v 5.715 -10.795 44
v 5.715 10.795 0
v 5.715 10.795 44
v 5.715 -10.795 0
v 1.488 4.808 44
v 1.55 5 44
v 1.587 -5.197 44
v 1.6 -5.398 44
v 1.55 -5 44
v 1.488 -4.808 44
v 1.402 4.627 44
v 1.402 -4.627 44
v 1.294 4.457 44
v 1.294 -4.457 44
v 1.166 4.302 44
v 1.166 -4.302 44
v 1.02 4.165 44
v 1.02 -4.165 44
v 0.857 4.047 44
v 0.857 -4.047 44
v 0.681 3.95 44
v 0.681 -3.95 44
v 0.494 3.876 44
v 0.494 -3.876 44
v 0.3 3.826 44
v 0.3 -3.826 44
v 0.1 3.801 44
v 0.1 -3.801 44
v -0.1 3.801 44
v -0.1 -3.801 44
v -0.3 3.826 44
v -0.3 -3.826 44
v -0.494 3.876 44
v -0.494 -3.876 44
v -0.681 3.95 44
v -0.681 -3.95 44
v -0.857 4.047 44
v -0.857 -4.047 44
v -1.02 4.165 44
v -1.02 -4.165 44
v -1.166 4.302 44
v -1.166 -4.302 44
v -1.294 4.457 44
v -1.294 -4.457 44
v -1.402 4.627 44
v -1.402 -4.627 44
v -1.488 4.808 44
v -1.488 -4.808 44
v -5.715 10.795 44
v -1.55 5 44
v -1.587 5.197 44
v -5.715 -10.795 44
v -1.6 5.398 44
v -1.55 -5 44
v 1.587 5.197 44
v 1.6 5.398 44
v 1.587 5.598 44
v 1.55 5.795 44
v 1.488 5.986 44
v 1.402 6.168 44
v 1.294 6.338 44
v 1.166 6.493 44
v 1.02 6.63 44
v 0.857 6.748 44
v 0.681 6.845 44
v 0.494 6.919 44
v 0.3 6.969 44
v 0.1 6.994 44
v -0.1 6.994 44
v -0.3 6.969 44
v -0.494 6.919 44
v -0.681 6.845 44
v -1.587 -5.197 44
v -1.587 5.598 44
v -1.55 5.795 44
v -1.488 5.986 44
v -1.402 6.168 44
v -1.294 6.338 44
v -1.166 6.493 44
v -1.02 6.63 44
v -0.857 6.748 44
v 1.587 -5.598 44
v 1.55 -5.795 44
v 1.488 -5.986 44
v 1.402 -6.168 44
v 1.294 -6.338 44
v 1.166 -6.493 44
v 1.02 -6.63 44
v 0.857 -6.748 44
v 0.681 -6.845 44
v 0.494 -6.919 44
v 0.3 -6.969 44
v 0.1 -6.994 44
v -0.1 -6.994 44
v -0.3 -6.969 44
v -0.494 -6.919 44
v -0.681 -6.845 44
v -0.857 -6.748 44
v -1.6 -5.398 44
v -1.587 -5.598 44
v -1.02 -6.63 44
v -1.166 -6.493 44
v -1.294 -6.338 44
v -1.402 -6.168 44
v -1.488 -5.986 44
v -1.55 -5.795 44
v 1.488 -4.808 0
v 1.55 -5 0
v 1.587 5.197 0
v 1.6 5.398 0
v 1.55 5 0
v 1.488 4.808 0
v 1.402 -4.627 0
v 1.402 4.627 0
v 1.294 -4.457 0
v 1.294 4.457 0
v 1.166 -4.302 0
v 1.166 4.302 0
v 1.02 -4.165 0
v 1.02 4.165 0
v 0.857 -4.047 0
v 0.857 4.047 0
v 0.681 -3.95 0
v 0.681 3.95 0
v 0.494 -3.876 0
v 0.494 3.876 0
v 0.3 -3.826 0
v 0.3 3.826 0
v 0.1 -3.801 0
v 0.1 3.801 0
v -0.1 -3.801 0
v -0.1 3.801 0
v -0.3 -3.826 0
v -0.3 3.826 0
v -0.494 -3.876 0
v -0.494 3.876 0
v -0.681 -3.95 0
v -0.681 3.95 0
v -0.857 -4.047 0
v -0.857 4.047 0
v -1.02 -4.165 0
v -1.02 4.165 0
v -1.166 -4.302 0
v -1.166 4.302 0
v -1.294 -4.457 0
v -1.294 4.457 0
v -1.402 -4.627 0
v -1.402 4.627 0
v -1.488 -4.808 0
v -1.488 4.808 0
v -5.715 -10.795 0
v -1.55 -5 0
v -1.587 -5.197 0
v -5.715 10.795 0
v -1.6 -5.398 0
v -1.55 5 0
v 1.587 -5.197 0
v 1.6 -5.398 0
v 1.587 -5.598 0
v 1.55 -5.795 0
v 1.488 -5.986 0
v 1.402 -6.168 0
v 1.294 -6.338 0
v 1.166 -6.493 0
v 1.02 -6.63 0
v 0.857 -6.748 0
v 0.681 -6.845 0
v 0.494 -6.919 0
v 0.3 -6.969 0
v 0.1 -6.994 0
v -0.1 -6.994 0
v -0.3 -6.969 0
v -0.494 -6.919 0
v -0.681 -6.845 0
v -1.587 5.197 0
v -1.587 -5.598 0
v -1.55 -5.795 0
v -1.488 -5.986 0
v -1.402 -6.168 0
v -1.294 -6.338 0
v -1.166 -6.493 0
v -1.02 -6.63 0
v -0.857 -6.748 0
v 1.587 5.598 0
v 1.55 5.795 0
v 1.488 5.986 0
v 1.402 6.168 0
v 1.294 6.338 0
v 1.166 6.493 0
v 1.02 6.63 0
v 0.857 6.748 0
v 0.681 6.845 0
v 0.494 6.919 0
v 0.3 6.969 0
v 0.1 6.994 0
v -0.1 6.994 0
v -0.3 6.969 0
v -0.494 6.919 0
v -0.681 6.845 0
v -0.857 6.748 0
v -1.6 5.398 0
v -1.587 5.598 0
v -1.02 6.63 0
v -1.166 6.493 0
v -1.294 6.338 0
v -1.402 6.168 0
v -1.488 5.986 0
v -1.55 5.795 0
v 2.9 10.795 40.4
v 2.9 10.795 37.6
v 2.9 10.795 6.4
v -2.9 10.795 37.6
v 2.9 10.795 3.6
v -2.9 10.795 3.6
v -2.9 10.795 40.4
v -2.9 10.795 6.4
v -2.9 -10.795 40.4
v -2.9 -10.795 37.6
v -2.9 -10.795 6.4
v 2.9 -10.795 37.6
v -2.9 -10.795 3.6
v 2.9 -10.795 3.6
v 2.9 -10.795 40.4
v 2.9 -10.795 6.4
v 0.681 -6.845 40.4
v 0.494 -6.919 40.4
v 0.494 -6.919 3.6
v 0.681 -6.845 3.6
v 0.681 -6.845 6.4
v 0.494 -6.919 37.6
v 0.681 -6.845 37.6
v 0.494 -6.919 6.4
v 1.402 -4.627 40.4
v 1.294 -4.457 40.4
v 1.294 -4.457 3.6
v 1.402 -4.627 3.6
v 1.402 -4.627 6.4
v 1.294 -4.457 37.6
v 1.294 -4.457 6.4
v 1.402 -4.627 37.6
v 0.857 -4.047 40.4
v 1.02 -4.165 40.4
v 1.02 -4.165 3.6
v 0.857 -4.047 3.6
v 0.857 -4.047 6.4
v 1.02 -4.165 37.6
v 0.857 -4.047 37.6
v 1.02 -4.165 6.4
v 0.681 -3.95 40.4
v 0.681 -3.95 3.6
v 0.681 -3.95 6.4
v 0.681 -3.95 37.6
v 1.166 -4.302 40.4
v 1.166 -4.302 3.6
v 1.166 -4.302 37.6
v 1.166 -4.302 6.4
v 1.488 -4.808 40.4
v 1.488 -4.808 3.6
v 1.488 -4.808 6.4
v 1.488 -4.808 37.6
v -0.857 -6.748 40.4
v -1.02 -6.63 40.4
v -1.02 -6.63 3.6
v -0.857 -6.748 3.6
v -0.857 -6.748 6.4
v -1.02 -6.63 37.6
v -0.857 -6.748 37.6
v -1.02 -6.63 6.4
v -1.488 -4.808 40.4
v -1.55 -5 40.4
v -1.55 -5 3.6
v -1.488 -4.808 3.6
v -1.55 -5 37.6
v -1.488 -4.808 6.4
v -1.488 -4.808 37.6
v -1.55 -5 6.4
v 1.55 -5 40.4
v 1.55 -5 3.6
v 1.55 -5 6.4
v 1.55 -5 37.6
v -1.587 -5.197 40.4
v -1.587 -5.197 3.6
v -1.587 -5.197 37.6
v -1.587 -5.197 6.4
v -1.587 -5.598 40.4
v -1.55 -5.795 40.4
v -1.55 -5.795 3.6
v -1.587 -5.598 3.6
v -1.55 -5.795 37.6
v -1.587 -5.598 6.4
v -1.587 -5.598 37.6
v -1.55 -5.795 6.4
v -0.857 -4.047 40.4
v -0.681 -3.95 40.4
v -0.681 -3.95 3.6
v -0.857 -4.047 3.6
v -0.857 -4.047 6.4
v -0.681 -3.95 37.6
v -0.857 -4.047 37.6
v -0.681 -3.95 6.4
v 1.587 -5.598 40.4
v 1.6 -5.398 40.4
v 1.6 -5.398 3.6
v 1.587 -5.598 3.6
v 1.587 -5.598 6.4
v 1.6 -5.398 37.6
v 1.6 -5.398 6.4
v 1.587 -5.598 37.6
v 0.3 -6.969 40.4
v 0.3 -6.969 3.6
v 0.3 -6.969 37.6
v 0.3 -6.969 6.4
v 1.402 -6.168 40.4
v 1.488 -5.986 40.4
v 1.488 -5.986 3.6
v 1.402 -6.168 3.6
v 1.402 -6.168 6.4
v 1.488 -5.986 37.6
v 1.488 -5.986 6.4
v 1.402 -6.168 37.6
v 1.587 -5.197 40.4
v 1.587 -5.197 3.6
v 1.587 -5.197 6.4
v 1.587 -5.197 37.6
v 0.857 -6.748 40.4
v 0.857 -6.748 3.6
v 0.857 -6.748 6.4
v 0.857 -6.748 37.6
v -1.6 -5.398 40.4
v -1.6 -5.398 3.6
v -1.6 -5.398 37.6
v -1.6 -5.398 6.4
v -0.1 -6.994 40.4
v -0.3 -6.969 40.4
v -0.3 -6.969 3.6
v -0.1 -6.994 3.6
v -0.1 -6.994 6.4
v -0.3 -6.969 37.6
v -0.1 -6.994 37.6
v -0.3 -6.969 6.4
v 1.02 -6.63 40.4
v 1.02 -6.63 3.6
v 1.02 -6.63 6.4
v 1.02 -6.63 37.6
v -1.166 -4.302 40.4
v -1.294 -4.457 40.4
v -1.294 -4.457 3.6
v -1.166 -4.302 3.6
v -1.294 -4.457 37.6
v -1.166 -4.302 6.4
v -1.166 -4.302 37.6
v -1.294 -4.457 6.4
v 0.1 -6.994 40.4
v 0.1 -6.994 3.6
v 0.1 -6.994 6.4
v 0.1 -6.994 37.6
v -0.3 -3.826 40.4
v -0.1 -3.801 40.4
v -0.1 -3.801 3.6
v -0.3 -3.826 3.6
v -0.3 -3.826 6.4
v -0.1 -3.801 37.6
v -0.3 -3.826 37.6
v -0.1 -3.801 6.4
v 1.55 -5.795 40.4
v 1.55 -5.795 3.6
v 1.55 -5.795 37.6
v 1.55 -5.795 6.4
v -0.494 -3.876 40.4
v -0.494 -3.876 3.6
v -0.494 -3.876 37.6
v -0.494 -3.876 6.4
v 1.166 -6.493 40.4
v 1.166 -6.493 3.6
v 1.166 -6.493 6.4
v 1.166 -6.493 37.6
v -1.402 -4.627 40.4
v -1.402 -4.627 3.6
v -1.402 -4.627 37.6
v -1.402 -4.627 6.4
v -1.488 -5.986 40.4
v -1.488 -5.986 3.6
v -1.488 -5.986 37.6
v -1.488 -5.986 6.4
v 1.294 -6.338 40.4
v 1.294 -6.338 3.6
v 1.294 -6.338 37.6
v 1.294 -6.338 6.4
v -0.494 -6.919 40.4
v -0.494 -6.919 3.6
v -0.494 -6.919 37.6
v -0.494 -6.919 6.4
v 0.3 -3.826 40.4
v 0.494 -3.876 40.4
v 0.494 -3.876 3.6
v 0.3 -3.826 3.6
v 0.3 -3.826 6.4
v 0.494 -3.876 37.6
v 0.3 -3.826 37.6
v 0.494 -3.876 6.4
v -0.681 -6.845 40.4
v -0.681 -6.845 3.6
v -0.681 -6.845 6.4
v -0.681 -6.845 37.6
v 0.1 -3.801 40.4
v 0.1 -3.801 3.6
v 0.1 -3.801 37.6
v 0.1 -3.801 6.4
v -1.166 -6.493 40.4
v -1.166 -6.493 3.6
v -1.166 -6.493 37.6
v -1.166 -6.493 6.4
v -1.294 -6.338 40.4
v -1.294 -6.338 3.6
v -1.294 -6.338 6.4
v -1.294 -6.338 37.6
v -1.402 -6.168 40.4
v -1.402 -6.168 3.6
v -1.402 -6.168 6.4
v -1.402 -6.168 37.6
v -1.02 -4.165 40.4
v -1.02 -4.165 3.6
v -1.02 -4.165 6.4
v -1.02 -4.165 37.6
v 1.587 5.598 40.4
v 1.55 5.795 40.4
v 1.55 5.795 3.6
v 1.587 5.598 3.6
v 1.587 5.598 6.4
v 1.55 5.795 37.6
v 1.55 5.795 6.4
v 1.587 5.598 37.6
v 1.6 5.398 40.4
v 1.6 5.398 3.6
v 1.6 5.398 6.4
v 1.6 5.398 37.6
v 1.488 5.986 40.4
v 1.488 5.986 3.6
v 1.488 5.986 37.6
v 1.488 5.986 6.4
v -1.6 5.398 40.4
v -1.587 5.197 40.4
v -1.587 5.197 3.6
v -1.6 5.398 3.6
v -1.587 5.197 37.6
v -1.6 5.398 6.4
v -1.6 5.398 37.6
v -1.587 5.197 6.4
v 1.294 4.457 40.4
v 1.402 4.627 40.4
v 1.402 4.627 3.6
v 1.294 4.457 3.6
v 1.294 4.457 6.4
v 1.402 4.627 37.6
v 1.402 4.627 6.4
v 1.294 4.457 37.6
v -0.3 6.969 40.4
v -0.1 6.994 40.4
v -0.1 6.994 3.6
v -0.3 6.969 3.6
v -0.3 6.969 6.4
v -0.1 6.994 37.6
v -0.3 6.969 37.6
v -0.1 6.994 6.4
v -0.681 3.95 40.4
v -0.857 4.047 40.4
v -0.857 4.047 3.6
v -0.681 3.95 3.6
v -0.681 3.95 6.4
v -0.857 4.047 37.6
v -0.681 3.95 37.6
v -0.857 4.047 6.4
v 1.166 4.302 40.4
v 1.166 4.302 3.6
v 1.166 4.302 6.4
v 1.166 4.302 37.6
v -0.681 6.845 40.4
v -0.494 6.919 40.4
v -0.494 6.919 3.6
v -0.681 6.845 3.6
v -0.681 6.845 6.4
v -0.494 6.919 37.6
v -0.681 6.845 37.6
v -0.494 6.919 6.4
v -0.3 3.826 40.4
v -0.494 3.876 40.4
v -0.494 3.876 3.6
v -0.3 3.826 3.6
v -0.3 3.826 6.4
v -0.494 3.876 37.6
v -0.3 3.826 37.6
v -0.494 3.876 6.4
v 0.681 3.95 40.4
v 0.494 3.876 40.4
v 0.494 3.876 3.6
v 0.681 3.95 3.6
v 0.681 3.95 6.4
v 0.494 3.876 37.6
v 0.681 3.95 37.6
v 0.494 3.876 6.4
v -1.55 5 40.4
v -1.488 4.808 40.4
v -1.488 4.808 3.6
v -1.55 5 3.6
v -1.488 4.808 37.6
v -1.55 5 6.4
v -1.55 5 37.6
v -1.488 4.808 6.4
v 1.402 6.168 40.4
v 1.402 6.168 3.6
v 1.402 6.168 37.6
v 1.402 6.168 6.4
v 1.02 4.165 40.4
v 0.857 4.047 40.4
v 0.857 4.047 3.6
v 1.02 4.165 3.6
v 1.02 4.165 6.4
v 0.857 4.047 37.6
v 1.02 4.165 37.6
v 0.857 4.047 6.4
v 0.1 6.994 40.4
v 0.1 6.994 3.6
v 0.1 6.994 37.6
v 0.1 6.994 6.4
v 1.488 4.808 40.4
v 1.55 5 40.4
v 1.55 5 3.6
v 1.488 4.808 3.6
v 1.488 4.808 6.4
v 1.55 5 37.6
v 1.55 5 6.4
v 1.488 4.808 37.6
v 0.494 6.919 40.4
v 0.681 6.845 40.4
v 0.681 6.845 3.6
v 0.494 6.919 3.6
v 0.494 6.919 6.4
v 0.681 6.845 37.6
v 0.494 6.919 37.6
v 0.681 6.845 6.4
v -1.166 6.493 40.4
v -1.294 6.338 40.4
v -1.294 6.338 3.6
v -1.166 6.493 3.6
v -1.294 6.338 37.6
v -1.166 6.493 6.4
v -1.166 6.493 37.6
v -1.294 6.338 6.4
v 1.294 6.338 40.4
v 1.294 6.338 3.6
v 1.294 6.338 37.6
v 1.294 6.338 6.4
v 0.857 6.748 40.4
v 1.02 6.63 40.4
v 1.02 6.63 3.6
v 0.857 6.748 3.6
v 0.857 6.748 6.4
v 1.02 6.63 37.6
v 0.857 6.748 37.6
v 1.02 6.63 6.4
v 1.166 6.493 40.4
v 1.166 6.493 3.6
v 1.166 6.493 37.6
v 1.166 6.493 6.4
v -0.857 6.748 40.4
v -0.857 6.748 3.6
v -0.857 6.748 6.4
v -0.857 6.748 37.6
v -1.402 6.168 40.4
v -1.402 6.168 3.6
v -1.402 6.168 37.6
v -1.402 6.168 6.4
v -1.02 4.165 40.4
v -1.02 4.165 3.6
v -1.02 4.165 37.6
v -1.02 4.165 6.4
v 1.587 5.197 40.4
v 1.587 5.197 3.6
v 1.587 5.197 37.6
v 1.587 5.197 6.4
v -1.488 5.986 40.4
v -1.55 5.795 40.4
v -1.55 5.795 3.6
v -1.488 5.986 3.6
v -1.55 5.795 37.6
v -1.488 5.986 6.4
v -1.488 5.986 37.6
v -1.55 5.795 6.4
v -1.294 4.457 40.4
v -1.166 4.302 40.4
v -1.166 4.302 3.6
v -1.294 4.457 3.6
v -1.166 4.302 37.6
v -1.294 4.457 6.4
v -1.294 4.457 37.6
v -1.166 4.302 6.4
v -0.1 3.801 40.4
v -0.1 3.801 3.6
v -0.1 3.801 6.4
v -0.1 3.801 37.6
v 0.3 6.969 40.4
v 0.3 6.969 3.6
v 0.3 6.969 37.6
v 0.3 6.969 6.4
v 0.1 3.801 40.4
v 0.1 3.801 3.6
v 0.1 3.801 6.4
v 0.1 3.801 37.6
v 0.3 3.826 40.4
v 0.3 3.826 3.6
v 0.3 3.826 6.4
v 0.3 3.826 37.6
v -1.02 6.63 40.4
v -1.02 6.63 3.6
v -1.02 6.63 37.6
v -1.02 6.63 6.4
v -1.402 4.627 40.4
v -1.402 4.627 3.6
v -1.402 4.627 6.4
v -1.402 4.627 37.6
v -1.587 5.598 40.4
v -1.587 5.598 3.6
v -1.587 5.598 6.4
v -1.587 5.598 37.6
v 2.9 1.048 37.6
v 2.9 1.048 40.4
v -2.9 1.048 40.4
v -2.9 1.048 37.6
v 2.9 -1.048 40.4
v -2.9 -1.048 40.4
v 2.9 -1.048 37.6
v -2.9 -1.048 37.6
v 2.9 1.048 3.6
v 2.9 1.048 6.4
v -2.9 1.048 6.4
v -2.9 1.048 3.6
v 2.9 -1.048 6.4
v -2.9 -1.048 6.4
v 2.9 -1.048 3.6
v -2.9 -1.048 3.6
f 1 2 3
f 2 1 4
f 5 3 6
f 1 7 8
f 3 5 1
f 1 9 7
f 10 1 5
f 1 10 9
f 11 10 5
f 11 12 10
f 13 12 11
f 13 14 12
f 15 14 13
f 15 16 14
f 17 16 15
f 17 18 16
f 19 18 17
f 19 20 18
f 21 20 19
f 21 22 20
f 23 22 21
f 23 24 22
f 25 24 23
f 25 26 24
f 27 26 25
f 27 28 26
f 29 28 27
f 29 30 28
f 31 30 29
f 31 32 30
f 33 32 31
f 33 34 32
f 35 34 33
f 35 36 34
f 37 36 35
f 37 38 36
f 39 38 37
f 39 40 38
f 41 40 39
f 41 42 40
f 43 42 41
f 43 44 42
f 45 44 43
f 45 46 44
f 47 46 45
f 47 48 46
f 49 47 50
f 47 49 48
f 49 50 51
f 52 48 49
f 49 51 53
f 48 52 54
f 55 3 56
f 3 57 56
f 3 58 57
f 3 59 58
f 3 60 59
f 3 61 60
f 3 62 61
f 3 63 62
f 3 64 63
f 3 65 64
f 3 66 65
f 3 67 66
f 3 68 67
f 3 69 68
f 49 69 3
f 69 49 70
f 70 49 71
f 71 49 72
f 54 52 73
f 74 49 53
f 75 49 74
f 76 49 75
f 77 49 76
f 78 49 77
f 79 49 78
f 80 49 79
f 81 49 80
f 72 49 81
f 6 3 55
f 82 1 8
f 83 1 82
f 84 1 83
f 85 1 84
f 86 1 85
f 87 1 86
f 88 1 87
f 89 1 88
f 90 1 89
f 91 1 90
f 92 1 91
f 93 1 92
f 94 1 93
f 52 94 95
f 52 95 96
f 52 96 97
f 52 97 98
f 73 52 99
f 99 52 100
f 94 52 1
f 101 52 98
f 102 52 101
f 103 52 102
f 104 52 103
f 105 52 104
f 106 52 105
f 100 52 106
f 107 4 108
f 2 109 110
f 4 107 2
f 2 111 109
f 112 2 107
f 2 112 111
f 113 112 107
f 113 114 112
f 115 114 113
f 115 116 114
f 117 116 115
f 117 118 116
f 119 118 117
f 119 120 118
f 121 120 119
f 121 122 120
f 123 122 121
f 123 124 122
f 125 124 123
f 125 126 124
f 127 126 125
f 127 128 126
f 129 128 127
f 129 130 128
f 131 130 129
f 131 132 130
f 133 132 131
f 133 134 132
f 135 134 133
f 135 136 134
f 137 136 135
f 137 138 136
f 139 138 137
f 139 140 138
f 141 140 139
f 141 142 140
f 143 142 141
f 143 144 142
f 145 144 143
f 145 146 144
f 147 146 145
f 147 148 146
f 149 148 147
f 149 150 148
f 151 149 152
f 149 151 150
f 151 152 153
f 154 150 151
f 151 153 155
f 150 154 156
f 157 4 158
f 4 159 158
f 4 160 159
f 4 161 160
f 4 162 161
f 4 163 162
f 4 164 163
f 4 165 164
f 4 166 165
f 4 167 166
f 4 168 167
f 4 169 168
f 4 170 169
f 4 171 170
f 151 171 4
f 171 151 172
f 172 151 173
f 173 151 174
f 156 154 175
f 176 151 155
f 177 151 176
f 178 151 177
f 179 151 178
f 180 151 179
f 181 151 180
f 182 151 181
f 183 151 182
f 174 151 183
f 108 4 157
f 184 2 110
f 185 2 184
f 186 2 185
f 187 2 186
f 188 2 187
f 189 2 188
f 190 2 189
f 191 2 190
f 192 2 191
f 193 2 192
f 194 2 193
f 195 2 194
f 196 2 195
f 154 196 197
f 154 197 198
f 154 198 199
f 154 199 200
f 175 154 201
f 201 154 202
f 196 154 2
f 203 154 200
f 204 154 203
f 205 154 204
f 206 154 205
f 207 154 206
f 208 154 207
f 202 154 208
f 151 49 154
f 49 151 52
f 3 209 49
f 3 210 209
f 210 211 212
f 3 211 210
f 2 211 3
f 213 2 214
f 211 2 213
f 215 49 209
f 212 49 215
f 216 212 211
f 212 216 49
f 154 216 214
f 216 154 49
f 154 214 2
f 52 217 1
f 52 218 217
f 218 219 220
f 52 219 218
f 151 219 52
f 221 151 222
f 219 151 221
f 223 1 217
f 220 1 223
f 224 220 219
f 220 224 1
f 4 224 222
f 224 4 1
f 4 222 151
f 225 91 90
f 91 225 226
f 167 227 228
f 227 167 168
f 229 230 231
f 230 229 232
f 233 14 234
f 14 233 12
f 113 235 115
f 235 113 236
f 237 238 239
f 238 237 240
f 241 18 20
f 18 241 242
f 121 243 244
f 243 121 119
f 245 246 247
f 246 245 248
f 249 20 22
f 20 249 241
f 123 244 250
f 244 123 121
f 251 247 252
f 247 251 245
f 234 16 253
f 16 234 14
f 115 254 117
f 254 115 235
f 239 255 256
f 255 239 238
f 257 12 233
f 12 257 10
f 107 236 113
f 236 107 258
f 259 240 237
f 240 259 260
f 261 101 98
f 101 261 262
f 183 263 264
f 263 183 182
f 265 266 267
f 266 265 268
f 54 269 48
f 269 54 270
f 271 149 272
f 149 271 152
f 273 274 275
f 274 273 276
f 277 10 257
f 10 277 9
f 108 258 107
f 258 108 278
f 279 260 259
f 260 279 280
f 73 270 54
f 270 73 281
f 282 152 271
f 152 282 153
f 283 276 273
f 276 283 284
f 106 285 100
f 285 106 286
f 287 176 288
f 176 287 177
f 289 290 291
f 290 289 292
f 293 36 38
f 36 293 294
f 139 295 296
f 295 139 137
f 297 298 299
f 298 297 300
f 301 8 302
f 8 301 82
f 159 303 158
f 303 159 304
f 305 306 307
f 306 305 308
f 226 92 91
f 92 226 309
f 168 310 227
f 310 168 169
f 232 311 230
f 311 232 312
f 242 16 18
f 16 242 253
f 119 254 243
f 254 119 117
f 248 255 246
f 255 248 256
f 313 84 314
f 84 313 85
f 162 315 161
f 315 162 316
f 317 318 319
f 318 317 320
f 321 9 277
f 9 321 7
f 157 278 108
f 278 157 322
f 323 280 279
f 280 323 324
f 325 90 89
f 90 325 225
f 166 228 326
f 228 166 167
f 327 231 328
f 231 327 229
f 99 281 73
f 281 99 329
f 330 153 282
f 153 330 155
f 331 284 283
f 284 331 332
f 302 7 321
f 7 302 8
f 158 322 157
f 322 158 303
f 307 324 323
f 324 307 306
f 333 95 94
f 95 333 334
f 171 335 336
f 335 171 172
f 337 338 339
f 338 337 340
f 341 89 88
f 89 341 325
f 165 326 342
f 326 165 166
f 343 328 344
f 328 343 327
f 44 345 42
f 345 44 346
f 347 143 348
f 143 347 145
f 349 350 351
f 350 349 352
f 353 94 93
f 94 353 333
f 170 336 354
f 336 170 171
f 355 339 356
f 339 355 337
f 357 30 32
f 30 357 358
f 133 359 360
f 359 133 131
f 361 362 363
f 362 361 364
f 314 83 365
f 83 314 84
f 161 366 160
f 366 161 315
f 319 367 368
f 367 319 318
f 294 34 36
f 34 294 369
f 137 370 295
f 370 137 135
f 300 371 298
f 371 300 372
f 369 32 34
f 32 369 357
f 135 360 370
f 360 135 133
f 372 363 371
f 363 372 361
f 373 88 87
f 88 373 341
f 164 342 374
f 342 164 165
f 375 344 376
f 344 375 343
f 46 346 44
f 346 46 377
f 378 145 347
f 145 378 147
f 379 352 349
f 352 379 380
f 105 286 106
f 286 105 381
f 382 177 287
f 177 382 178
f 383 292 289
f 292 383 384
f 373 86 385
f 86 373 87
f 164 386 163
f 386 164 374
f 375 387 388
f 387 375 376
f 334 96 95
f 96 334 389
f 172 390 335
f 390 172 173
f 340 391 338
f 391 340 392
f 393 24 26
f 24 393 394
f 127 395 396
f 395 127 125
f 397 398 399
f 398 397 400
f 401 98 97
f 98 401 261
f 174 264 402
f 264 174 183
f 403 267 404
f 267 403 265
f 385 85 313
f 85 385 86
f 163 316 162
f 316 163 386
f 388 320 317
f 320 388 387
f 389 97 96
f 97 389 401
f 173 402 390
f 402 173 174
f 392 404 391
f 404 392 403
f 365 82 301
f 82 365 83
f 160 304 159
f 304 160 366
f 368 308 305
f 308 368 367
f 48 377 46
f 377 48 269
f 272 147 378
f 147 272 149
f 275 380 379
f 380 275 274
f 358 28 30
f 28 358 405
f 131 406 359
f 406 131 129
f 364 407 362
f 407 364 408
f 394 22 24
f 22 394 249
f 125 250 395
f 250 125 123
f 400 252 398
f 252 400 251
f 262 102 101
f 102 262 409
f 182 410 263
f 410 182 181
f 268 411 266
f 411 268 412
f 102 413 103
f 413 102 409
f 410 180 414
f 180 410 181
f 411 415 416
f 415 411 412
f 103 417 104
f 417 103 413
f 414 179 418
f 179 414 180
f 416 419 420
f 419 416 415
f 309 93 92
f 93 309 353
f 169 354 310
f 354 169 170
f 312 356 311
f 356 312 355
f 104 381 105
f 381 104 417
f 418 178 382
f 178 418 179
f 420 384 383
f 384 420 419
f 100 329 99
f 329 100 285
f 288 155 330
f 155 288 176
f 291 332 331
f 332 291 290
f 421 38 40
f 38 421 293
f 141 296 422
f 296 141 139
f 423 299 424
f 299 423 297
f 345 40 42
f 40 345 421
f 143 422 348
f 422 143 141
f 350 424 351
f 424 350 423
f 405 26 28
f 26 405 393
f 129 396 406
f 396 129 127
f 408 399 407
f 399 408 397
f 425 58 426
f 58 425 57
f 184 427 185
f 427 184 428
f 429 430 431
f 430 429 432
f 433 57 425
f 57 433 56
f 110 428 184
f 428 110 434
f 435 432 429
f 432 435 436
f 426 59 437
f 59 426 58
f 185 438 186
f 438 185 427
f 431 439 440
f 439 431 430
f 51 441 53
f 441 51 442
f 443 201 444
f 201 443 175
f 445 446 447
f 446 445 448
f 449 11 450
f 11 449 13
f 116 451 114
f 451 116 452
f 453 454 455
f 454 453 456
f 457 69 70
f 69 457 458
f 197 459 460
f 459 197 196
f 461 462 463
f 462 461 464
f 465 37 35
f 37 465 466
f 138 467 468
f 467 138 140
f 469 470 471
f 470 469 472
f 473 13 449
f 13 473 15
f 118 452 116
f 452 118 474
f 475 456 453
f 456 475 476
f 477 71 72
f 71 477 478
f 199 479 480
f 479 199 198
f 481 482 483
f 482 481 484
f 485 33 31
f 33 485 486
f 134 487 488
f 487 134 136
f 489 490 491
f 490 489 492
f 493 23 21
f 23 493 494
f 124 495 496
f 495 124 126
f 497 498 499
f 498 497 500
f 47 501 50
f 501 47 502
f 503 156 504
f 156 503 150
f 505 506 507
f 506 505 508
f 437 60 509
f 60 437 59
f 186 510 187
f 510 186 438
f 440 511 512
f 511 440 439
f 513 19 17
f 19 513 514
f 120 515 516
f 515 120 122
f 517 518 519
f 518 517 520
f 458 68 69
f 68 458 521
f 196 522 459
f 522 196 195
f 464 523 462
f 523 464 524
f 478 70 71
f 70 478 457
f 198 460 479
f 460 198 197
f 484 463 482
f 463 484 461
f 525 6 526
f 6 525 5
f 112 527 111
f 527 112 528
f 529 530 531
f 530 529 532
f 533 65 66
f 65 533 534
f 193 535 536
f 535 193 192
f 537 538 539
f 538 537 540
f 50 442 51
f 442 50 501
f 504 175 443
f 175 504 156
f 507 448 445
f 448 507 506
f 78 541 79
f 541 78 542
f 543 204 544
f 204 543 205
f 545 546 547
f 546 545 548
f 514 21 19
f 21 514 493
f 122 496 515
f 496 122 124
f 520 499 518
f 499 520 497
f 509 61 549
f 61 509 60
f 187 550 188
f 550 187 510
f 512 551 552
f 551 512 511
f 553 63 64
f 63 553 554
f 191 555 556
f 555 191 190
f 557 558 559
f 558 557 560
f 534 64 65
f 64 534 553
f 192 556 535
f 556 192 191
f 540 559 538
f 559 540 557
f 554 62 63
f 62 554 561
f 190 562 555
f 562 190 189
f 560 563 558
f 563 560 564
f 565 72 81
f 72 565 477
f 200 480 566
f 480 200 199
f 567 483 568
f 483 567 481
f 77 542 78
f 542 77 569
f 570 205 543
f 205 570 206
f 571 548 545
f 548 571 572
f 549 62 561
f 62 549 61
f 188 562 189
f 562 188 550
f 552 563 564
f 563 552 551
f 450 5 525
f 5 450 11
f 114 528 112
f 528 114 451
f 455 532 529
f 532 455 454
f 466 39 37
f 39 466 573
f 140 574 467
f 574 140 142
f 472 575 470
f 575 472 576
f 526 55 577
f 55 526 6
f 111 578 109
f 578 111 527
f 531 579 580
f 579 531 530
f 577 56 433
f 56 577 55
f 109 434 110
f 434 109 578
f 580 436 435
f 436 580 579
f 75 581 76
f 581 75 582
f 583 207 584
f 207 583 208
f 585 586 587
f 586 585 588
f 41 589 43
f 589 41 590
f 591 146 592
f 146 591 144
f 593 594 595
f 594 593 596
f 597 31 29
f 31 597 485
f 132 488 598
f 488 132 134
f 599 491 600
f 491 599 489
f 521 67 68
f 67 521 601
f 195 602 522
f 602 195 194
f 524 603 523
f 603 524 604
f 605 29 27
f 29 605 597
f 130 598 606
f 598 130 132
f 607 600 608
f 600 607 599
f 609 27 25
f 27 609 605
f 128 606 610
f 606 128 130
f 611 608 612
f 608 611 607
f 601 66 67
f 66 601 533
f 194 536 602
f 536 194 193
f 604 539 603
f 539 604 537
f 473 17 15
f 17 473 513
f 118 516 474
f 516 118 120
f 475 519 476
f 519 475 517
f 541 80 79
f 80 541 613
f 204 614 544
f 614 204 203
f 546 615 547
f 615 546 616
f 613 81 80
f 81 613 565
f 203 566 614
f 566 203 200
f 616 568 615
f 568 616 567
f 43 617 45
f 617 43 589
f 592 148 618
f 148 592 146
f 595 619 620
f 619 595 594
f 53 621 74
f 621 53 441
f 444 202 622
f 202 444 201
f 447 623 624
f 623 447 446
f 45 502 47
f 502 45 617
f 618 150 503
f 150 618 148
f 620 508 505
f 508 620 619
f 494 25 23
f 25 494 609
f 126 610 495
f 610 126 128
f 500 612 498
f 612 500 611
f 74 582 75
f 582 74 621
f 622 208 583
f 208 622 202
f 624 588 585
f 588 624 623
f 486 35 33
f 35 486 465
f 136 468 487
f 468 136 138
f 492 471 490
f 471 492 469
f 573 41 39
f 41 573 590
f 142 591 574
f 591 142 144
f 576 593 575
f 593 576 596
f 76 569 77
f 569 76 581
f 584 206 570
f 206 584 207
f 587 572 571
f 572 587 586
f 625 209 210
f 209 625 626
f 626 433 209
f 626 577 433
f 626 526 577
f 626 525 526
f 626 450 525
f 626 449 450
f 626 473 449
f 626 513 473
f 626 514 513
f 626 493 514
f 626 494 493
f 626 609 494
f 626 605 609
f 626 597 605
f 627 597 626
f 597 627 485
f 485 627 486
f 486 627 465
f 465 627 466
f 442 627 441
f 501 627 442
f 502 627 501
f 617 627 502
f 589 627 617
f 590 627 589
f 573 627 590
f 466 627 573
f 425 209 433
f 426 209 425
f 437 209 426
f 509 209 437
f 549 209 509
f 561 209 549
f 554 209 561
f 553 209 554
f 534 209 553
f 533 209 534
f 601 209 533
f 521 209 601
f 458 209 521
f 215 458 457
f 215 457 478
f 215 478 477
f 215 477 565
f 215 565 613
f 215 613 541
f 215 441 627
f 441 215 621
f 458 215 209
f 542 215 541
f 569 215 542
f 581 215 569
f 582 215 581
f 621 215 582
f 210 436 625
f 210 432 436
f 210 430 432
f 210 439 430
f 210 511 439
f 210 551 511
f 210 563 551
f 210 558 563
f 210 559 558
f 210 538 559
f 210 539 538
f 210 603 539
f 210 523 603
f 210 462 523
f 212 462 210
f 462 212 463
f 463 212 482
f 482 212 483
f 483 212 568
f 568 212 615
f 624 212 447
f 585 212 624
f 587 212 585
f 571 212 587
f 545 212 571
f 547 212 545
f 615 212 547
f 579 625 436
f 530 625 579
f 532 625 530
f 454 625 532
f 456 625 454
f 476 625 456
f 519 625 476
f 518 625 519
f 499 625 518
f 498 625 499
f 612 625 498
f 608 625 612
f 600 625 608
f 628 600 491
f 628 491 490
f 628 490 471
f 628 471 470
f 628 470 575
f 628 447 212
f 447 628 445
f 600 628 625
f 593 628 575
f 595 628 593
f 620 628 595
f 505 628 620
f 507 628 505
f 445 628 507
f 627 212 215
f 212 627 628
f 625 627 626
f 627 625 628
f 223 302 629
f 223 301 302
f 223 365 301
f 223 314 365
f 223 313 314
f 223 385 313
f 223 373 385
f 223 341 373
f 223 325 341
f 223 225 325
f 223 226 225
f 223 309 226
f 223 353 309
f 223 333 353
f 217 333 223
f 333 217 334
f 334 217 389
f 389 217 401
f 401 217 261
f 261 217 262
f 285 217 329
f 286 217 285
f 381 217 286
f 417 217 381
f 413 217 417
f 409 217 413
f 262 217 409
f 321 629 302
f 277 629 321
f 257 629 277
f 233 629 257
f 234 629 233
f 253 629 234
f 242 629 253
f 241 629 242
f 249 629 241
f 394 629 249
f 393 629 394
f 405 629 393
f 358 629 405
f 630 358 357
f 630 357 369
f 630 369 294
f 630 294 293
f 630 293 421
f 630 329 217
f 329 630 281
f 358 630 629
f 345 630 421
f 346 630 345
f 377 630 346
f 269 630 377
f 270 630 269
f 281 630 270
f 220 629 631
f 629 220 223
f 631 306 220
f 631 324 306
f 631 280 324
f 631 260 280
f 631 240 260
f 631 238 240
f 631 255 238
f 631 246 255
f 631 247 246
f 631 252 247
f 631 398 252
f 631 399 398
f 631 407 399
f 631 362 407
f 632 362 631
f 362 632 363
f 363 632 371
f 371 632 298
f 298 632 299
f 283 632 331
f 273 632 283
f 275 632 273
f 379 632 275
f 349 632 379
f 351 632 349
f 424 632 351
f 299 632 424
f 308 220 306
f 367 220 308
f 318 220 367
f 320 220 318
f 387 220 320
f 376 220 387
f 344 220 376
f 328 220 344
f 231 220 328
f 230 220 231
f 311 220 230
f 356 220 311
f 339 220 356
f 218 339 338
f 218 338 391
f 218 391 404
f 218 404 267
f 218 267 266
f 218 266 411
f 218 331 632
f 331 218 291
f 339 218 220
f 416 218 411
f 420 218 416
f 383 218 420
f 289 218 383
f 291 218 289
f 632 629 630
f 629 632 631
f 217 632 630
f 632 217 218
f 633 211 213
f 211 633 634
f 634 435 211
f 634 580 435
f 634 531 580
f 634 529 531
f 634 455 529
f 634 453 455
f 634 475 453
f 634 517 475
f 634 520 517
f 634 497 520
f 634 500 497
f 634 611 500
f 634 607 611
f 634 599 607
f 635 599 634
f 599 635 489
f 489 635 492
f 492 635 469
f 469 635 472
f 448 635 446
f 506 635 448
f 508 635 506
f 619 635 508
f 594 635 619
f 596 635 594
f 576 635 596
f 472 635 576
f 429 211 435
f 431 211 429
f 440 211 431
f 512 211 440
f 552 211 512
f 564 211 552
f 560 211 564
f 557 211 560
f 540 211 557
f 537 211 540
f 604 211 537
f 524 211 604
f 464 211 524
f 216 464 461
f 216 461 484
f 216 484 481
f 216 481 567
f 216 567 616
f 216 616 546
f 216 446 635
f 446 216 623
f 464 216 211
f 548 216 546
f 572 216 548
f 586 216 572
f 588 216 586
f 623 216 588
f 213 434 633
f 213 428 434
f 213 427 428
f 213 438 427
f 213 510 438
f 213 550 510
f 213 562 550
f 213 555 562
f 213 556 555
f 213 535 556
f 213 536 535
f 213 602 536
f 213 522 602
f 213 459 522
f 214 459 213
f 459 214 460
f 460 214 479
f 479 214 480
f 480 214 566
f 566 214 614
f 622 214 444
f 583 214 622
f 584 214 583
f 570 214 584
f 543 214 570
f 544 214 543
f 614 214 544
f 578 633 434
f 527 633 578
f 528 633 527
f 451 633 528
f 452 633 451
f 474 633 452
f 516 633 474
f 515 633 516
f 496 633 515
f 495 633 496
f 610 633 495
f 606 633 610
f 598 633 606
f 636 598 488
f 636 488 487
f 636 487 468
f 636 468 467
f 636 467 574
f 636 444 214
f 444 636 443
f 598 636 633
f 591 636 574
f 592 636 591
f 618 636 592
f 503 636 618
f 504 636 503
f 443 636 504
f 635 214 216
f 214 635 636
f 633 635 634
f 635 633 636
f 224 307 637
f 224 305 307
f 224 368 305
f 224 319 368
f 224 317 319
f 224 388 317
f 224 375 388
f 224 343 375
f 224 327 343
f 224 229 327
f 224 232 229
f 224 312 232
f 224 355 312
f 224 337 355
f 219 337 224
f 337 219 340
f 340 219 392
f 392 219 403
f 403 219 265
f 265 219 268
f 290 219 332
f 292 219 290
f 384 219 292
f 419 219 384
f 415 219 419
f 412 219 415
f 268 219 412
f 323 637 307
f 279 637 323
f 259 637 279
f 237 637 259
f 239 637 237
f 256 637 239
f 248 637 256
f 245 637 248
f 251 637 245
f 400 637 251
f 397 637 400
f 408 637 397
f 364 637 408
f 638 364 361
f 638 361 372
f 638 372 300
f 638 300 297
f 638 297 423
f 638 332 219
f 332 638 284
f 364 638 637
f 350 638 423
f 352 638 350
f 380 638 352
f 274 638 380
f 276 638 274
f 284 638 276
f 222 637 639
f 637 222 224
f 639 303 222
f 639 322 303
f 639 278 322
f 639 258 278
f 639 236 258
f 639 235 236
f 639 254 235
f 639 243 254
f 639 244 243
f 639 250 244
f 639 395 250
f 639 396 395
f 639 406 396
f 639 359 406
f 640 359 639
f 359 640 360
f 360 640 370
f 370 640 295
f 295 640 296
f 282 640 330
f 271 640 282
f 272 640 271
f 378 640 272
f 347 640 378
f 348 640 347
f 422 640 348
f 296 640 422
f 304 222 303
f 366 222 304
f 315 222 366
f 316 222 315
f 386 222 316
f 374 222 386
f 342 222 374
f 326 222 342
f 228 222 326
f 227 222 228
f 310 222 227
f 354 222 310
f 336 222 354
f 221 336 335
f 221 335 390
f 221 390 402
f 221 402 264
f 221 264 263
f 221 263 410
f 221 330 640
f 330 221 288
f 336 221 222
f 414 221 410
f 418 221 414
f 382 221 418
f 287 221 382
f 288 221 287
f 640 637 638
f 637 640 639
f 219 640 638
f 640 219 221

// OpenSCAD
// file: ../lib/nuts_and_screws.scad
//
// This file is part of the hexapod-robi distribution (https://github.com/schwicke/hexapod-robi).
// Copyright (c) 2021 Ulrich Schwickerath
//
// This program is free software: you can redistribute it and/or modify
// it under the terms of the GNU General Public License as published by
// the Free Software Foundation, version 3.
//
// This program is distributed in the hope that it will be useful, but
// WITHOUT ANY WARRANTY; without even the implied warranty of
// MERCHANTABILITY or FITNESS FOR A PARTICULAR PURPOSE. See the GNU
// General Public License for more details.
//
// You should have received a copy of the GNU General Public License
// along with this program. If not, see <http://www.gnu.org/licenses/>.
//
// This is a little plastic bit which is intended to get the holes for the connectors
// at the right position. It's not part of the robot itself, but useful for building it.
//
// m3s nuts dimensions
m3s_screwdim = 3; // m3 screws
m3s_delta = 0.4;
m3s_nut_width = 5.4+m3s_delta;
m3s_nut_hight = 2.4+m3s_delta;

module screwhole_mX_basic(d, height, fact){
     headlength = 0.6*d/2+0.1;
     translate([0, 0, headlength/2]){
          translate([0, 0, height/2])cylinder(h=height, r=d/2+0.1, center=true, $fn=50);
          cylinder(h=10*fact*headlength, r=d+0.1, center=true, $fn=50);
     }
}

module screwhole_mX(d, height, fact){
     headlength = 0.6*d/2+0.1;
     translate([0, 2, 0]){
          rotate([90, 0, 0]){
               translate([0, 0, headlength/2]){
                    translate([0, 0, height/2])cylinder(h=height, r=d/2+0.1, center=true, $fn=50);
                    cylinder(h=10*fact*headlength, r=d+0.1, center=true, $fn=50);
               }
          }
     }
}

module nuthole_mX(d){
     s = (d==2) ? 4: (d==2.5)? 5: (d==3) ? 5.5: 0.0;
     if (s==0){
          echo ("Nut size not supported");
     }
     e = s/sin(60.0);
     height = 40;
     headlength = 0.6*d/2+0.1;
     translate([0, 0, -5*headlength]){
          translate([0, 0, height/2])cylinder(h=height, r=d/2+0.1, center=true, $fn=50);
          cylinder(h=10*headlength, d=e+0.1, center=true, $fn=6);
     }
}

module my_screwhole_mX(d){
     translate([0, 0, thickness])rotate([180, 0, 0])screwhole_mX_basic(d, 40, 1);
}
// file: ../lib/globals.scad
//
// This file is part of the hexapod-robi distribution (https://github.com/schwicke/hexapod-robi).
// Copyright (c) 2021 Ulrich Schwickerath
//
// This program is free software: you can redistribute it and/or modify
// it under the terms of the GNU General Public License as published by
// the Free Software Foundation, version 3.
//
// This program is distributed in the hope that it will be useful, but
// WITHOUT ANY WARRANTY; without even the implied warranty of
// MERCHANTABILITY or FITNESS FOR A PARTICULAR PURPOSE. See the GNU
// General Public License for more details.
//
// You should have received a copy of the GNU General Public License
// along with this program. If not, see <http://www.gnu.org/licenses/>.
//
// This is a little plastic bit which is intended to get the holes for the connectors
// at the right position. It's not part of the robot itself, but useful for building it.
//
//
// all distances are in mm
//

// Define some globals used at various places
raster=2.54;

// motor height
space = 42.0;

// wall thickness
thickness = 4;

// battery box
batt_thickness = 3;
batt_x = 50;
batt_y = 160;
batt_z = 25;

// binder distance
binder_dist = 3.5;

// mount position base
base_mount_pos_x = batt_x/2+2*batt_thickness+1.5;

// dimensions for hubs for motor cabling
hub_hole_diameter = 2;
hub_spacer_height = 2;
hub_x = 4.9;
hub_y = 9.9;

module anchorbox(size){
     cube([40, 30, size],center=true);
}
// main file
//
// This file is part of the hexapod-robi distribution (https://github.com/schwicke/hexapod-robi).
// Copyright (c) 2021 Ulrich Schwickerath
//
// This program is free software: you can redistribute it and/or modify
// it under the terms of the GNU General Public License as published by
// the Free Software Foundation, version 3.
//
// This program is distributed in the hope that it will be useful, but
// WITHOUT ANY WARRANTY; without even the implied warranty of
// MERCHANTABILITY or FITNESS FOR A PARTICULAR PURPOSE. See the GNU
// General Public License for more details.
//
// You should have received a copy of the GNU General Public License
// along with this program. If not, see <http://www.gnu.org/licenses/>.
//
// This is a little plastic bit which is intended to get the holes for the connectors
// at the right position. It's not part of the robot itself, but useful for building it.
//

include <../lib/globals.scad>
include <../lib/nuts_and_screws.scad>

wx = 4*raster+raster/2;
wy = 8*raster+raster/2;
wyp = (wy-m3s_nut_width)/4.0;
module mount(){
     //translate([0., 0., space/2  ])cube([10, 20, space+thickness/2], center=true);
     difference(){
          translate([-wx/2, -wy/2, 0])cube([wx, wy, space+thickness/2]);
          // holes
          translate([0, -wy/4, space+10])cylinder(h=50, r=m3s_screwdim/2+0.1, center=true, $fn=50);
          translate([0, +wy/4, space+10])cylinder(h=50, r=m3s_screwdim/2+0.1, center=true, $fn=50);
          translate([0, -wy/4, 10])cylinder(h=50, r=m3s_screwdim/2+0.1, center=true, $fn=50);
          translate([0, +wy/4, 10])cylinder(h=50, r=m3s_screwdim/2+0.1, center=true, $fn=50);
          // nuts 5.4mm x 2.4mm
          translate([0, +wy/4-m3s_nut_width/4, space-3])translate([-m3s_nut_width/2, -m3s_nut_width/2, -m3s_nut_hight/2])cube([m3s_nut_width, 4*m3s_nut_width, m3s_nut_hight], center=false);
          translate([0, -wy/4+m3s_nut_width/4, space-3])rotate([0,0,180])translate([-m3s_nut_width/2, -m3s_nut_width/2, -m3s_nut_hight/2])cube([m3s_nut_width, 4*m3s_nut_width, m3s_nut_hight], center=false);
          translate([0, +wy/4-m3s_nut_width/4, 5])translate([-m3s_nut_width/2, -m3s_nut_width/2, -m3s_nut_hight/2])cube([m3s_nut_width, 4*m3s_nut_width, m3s_nut_hight], center=false);
          translate([0, -wy/4+m3s_nut_width/4, 5])rotate([0,0,180])translate([-m3s_nut_width/2, -m3s_nut_width/2, -m3s_nut_hight/2])cube([m3s_nut_width, 4*m3s_nut_width, m3s_nut_hight], center=false);

     }
}
mount();
